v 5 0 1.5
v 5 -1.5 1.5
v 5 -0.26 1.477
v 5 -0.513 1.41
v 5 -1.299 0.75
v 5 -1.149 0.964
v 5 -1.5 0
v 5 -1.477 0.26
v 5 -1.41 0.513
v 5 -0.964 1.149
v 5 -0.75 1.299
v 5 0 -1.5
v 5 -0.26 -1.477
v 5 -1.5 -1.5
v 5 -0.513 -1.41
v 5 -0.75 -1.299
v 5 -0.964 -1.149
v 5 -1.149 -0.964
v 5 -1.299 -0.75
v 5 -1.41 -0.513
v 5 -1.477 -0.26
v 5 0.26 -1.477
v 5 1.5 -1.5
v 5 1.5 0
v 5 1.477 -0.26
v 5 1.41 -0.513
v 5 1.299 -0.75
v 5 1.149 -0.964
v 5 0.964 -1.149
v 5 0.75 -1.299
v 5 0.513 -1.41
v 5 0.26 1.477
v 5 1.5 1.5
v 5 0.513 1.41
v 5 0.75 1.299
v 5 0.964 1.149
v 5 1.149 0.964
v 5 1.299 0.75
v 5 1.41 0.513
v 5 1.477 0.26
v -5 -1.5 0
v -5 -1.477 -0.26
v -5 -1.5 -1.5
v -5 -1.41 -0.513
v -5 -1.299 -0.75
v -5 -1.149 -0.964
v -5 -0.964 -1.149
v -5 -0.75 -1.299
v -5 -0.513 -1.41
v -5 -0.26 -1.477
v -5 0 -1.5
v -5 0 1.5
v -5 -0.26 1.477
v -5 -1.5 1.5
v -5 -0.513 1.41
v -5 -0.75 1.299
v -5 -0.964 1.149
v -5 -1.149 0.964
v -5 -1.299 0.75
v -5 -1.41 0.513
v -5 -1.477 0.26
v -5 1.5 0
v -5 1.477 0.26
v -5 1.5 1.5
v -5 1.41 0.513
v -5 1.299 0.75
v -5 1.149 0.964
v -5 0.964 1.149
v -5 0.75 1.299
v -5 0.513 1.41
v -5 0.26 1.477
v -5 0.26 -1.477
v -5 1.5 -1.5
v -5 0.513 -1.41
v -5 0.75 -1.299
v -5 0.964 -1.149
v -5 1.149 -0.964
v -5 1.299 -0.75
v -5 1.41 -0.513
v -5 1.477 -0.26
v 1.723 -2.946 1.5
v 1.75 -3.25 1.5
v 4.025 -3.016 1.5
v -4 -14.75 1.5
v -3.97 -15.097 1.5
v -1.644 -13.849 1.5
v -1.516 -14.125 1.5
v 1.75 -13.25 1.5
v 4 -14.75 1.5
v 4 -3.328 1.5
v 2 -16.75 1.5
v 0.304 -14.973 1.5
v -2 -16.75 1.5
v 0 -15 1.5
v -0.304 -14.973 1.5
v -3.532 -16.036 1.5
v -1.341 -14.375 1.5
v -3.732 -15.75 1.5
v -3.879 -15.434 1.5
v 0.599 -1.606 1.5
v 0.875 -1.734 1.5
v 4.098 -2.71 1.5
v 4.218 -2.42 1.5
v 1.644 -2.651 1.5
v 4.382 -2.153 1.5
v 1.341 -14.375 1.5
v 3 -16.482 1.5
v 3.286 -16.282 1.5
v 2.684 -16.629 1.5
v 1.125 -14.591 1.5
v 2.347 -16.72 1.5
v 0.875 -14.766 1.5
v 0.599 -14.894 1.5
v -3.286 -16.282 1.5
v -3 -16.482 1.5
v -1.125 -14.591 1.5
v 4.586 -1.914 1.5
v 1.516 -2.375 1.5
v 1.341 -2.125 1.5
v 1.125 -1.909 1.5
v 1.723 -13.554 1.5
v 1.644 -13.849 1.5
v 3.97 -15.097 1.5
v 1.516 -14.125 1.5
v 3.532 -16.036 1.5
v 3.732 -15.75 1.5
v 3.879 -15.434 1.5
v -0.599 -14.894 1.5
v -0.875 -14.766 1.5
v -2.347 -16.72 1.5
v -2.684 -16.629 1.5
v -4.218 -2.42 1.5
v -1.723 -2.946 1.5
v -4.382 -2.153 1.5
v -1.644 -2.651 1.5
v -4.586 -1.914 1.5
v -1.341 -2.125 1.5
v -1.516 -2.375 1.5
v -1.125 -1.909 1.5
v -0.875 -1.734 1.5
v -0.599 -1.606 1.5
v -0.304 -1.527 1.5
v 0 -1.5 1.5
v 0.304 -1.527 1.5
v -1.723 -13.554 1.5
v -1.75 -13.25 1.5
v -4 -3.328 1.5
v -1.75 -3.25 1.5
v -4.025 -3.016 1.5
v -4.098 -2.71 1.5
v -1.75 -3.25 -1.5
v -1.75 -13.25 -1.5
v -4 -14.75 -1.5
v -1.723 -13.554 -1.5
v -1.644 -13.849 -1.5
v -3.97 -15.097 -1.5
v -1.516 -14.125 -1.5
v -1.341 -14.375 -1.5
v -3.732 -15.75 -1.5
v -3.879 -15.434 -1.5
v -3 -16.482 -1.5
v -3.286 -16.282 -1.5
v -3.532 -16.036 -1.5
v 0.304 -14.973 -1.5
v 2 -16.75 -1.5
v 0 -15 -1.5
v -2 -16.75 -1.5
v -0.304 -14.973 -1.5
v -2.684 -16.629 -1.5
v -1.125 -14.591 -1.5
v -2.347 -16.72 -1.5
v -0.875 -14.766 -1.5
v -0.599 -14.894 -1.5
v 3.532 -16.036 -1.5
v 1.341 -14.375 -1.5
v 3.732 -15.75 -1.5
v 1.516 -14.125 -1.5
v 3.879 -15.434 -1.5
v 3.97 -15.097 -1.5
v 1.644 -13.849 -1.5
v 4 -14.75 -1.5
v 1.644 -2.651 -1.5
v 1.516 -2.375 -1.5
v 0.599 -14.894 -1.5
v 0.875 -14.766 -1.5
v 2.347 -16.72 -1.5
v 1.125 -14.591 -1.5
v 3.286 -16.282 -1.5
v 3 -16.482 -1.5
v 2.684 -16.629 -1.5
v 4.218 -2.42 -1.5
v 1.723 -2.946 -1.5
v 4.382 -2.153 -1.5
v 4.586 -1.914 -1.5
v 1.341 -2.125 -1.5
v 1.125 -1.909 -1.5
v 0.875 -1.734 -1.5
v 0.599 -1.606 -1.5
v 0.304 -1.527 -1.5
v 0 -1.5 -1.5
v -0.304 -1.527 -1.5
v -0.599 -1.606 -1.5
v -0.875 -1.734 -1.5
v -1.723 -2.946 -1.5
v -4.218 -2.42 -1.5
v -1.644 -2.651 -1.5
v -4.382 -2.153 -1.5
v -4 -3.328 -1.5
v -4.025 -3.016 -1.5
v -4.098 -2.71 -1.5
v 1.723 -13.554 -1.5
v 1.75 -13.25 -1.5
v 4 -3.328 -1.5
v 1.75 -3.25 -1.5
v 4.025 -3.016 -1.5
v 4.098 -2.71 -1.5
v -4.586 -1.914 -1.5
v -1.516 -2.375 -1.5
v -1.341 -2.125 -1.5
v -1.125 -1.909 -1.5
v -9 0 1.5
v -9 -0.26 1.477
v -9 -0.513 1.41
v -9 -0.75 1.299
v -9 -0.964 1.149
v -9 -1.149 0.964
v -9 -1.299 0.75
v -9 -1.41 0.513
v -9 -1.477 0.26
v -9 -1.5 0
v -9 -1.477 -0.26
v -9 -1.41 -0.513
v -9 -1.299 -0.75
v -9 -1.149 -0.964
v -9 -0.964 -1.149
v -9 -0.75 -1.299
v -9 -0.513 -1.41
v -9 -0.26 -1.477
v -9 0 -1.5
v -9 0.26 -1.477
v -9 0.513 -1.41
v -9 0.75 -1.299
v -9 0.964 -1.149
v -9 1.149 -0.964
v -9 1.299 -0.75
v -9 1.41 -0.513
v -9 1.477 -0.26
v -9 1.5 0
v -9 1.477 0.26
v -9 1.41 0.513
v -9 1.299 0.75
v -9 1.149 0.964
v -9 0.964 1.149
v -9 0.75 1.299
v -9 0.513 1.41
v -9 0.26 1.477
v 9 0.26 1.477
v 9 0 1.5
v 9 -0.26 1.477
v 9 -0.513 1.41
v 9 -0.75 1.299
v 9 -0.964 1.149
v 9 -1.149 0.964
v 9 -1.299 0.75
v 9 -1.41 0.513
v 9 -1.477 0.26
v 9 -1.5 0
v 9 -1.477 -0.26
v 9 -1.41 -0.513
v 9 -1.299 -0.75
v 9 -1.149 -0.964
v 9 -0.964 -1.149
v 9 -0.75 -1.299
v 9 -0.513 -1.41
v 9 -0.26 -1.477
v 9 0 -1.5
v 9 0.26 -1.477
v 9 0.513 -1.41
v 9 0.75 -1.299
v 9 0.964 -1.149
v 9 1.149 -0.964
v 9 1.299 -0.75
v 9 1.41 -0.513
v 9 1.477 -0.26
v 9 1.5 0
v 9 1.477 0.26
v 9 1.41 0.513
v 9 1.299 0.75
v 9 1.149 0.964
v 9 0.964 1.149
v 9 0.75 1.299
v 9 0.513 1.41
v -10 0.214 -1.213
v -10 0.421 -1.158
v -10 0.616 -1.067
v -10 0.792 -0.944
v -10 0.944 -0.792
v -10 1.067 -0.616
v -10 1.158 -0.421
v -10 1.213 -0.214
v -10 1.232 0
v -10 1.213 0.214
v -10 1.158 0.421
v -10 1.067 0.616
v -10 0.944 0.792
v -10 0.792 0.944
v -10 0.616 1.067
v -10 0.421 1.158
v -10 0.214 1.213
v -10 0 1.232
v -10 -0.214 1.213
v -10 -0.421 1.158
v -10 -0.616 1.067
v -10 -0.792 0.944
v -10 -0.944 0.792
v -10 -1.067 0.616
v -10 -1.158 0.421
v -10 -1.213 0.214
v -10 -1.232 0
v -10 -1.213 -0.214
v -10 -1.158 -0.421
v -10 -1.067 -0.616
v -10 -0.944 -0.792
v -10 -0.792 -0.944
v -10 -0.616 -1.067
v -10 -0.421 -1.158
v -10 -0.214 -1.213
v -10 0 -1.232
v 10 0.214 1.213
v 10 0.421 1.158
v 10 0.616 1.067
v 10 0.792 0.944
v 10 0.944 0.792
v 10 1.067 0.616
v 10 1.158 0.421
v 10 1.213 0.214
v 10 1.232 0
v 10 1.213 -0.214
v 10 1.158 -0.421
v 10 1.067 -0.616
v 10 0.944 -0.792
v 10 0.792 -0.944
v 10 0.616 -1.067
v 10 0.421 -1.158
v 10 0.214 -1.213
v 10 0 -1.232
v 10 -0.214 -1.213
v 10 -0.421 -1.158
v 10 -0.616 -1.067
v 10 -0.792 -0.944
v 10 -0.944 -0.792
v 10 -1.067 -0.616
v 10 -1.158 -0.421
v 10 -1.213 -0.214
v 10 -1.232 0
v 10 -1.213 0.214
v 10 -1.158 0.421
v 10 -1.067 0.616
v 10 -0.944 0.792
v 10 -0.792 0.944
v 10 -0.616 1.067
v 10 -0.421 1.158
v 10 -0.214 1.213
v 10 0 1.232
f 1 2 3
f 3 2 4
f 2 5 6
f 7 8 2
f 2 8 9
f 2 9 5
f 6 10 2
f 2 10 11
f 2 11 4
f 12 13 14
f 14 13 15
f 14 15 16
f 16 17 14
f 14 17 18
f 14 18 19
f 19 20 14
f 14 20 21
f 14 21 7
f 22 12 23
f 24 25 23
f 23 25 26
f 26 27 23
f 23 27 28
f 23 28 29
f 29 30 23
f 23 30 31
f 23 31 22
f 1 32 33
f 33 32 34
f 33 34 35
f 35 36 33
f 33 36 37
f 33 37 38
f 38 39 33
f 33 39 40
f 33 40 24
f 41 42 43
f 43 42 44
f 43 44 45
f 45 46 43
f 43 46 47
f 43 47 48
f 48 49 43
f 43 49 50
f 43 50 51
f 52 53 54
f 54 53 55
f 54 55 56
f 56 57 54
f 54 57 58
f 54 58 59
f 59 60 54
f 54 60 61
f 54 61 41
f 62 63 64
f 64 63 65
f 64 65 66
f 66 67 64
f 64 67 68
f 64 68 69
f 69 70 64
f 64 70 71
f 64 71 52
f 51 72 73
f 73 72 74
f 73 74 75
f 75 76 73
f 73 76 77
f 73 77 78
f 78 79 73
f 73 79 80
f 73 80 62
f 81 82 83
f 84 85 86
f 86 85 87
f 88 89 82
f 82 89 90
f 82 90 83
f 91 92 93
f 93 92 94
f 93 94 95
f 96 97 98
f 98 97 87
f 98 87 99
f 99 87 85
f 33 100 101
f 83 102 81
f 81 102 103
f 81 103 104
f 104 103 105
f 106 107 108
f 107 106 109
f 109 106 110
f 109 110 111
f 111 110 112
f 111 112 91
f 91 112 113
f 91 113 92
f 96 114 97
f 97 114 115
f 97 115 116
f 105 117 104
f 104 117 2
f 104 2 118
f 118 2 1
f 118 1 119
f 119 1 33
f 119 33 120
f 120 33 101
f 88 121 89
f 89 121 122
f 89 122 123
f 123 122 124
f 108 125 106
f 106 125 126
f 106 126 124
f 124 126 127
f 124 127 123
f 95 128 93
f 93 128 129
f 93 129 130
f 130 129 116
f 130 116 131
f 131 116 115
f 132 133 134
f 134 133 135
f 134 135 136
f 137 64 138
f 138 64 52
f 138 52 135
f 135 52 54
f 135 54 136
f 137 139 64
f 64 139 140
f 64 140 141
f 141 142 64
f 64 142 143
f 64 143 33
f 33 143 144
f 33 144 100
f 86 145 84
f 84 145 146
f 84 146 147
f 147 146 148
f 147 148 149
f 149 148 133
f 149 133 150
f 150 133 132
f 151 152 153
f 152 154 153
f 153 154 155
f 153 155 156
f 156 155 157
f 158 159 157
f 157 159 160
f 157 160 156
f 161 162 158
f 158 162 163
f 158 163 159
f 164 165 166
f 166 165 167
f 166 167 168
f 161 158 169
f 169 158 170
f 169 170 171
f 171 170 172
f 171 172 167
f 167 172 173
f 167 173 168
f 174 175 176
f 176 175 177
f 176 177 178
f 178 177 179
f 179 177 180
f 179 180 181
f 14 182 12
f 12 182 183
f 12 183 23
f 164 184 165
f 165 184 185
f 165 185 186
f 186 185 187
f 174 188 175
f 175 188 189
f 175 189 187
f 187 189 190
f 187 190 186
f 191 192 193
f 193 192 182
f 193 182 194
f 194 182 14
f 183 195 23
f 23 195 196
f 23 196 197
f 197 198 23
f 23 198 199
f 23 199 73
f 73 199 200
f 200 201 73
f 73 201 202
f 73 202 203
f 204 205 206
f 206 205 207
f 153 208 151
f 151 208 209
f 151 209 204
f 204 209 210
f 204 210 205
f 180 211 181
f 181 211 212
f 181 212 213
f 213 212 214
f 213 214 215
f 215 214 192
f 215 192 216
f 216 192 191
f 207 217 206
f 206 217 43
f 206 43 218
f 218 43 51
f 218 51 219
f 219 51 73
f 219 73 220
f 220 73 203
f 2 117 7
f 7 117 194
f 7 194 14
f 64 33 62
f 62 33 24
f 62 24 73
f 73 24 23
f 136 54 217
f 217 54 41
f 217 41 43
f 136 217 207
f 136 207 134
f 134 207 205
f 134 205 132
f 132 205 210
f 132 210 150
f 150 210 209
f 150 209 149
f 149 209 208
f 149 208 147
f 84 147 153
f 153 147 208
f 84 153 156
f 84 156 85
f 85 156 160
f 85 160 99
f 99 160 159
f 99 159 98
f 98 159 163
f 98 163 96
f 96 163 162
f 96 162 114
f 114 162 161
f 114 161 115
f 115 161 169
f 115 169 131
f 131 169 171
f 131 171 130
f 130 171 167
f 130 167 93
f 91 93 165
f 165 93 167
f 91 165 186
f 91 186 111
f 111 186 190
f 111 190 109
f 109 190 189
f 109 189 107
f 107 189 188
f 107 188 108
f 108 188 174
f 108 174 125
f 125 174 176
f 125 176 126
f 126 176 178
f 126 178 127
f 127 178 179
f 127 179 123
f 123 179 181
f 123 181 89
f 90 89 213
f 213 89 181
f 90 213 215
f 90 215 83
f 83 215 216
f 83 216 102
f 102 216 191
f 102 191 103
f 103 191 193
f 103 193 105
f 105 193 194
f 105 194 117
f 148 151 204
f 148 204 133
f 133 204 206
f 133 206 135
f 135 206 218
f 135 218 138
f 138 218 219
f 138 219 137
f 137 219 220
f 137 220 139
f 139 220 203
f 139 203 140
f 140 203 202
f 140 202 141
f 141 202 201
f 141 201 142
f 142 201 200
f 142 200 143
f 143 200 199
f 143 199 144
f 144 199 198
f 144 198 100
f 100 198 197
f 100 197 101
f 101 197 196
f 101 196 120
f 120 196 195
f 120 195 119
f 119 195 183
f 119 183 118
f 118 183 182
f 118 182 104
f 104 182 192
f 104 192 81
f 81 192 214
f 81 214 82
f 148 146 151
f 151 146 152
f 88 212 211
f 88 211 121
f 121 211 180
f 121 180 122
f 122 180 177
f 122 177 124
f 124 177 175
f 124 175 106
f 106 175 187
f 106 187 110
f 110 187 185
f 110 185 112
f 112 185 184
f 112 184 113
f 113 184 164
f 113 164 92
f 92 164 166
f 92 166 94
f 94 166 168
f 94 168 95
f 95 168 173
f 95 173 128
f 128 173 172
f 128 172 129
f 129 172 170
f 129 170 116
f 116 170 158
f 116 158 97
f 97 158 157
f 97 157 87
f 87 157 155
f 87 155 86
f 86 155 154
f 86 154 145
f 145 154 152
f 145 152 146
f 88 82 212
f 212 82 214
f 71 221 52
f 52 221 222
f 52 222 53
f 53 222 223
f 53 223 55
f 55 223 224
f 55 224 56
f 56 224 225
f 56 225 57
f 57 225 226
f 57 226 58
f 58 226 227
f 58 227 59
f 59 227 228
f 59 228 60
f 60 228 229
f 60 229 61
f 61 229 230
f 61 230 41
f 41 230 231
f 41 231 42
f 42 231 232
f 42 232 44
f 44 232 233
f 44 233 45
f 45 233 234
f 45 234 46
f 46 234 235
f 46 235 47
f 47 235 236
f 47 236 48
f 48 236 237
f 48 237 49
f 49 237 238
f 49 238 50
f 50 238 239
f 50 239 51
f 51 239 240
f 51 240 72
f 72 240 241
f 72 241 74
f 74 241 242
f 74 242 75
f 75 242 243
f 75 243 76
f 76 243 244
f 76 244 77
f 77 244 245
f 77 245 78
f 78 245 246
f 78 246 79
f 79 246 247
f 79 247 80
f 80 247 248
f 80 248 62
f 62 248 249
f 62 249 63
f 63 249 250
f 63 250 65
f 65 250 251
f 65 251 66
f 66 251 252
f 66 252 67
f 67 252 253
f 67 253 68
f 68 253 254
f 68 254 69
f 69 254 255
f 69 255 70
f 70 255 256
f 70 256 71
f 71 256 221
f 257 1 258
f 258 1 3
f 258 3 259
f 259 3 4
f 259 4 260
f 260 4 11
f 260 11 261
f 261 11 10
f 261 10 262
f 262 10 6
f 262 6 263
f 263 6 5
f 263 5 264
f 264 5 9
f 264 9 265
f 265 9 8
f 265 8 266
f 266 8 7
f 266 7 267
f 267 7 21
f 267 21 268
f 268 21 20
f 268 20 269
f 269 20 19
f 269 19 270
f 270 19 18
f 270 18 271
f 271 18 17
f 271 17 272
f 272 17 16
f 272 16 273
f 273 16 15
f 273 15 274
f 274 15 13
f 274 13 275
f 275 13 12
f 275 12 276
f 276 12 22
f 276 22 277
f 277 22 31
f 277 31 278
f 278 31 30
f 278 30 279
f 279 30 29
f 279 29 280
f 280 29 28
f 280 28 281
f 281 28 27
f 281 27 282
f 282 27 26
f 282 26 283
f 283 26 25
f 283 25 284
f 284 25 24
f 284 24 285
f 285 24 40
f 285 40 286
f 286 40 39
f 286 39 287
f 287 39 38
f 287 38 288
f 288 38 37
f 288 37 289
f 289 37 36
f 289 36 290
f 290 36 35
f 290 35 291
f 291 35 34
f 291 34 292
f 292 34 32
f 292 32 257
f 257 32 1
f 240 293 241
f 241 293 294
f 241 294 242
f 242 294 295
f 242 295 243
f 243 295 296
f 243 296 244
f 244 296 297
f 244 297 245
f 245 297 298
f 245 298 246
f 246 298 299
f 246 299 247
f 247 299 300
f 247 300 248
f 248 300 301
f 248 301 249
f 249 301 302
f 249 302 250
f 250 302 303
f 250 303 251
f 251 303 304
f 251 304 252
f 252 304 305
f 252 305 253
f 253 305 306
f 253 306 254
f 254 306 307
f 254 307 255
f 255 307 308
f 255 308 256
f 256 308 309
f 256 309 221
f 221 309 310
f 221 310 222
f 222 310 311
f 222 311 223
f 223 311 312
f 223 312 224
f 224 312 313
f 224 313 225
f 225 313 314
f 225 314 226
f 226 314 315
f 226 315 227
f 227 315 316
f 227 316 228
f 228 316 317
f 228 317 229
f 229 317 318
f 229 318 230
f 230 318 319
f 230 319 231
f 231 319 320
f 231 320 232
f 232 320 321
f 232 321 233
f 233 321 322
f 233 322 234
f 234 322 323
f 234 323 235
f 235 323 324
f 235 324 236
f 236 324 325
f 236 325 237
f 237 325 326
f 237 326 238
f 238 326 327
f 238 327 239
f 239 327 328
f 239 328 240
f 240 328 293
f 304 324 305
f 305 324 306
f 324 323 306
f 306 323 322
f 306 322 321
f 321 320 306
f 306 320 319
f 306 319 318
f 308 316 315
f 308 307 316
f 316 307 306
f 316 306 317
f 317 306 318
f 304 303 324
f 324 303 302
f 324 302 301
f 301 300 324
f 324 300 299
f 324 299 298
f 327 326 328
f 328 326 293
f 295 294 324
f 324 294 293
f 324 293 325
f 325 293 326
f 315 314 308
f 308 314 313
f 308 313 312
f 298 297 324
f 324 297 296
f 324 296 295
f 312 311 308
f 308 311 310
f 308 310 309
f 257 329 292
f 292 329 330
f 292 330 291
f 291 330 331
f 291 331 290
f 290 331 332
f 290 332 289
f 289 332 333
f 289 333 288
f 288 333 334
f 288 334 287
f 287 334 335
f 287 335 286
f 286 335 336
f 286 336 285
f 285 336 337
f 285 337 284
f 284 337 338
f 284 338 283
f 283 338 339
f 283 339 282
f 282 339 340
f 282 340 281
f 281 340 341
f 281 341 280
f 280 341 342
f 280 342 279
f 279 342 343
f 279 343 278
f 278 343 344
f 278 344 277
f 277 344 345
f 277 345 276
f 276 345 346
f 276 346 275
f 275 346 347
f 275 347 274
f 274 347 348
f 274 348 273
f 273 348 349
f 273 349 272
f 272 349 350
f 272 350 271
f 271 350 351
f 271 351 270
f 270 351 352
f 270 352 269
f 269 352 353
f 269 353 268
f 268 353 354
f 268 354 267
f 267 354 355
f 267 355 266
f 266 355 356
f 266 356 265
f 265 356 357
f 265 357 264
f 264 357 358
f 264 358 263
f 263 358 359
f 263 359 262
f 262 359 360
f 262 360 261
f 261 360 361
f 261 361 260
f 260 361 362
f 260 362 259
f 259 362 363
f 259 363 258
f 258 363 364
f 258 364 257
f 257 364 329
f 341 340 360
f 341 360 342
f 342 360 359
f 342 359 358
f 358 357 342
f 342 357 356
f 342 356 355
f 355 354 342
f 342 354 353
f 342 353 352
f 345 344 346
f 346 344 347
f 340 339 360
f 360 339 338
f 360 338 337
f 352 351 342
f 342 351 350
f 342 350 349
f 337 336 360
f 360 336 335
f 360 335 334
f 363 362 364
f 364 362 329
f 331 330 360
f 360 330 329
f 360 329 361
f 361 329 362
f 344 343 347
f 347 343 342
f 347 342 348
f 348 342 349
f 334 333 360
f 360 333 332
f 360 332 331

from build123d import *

# Parameters (mm, degrees)
BOSS_EXTRU_1_DEPTH = 1.5
ESQUISSE3_R        = 1.5
BOSS_EXTRU_2_DEPTH = 10


with BuildPart() as part:
    # Esquisse1 → Boss.-Extru.1 (new, symmetric)
    with BuildSketch(Plane.XY):
        with BuildLine():
            Line((-5, -1.5), (-4.585786438, -1.914213562))
            ThreePointArc((-4.585786438, -1.914213562), (-4.152240935, -2.56306026), (-4, -3.328427125))
            Line((-4, -3.328427125), (-4, -14.75))
            ThreePointArc((-4, -14.75), (-3.414213562, -16.164213562), (-2, -16.75))
            Line((-2, -16.75), (2, -16.75))
            ThreePointArc((2, -16.75), (3.414213562, -16.164213562), (4, -14.75))
            Line((4, -14.75), (4, -3.328427125))
            ThreePointArc((4, -3.328427125), (4.152240935, -2.56306026), (4.585786438, -1.914213562))
            Line((4.585786438, -1.914213562), (5, -1.5))
            Line((5, -1.5), (5, 1.5))
            Line((5, 1.5), (-5, 1.5))
            Line((-5, 1.5), (-5, -1.5))
        make_face()
        with BuildLine():
            Line((1.75, -3.25), (1.75, -13.25))
            ThreePointArc((1.75, -13.25), (0, -15), (-1.75, -13.25))
            Line((-1.75, -13.25), (-1.75, -3.25))
            ThreePointArc((-1.75, -3.25), (0, -1.5), (1.75, -3.25))
        make_face(mode=Mode.SUBTRACT)
    extrude(amount=BOSS_EXTRU_1_DEPTH, both=True)

    # Esquisse3 → Boss.-Extru.2 (add, symmetric)
    with BuildSketch(Plane(origin=(0, 0, 0), x_dir=(0, 0, -1), z_dir=(1, 0, 0))):
        Circle(ESQUISSE3_R)
    extrude(amount=BOSS_EXTRU_2_DEPTH, both=True)

    # Esquisse4 → Enlèvement de matière-Révolution1 (revolve, cut)
    with BuildSketch(Plane(origin=(0, 0, 0), x_dir=(1, 0, 0), z_dir=(0, 1, 0))):
        Polygon((-10, 1.5), (-9, 1.5), (-10, 1.232050808), align=None)
        Polygon((10, 1.232050808), (10, 1.5), (9, 1.5), align=None)
    revolve(axis=Axis((11, 0, 0), (-1, 0, 0)), mode=Mode.SUBTRACT)


solid = part.part
